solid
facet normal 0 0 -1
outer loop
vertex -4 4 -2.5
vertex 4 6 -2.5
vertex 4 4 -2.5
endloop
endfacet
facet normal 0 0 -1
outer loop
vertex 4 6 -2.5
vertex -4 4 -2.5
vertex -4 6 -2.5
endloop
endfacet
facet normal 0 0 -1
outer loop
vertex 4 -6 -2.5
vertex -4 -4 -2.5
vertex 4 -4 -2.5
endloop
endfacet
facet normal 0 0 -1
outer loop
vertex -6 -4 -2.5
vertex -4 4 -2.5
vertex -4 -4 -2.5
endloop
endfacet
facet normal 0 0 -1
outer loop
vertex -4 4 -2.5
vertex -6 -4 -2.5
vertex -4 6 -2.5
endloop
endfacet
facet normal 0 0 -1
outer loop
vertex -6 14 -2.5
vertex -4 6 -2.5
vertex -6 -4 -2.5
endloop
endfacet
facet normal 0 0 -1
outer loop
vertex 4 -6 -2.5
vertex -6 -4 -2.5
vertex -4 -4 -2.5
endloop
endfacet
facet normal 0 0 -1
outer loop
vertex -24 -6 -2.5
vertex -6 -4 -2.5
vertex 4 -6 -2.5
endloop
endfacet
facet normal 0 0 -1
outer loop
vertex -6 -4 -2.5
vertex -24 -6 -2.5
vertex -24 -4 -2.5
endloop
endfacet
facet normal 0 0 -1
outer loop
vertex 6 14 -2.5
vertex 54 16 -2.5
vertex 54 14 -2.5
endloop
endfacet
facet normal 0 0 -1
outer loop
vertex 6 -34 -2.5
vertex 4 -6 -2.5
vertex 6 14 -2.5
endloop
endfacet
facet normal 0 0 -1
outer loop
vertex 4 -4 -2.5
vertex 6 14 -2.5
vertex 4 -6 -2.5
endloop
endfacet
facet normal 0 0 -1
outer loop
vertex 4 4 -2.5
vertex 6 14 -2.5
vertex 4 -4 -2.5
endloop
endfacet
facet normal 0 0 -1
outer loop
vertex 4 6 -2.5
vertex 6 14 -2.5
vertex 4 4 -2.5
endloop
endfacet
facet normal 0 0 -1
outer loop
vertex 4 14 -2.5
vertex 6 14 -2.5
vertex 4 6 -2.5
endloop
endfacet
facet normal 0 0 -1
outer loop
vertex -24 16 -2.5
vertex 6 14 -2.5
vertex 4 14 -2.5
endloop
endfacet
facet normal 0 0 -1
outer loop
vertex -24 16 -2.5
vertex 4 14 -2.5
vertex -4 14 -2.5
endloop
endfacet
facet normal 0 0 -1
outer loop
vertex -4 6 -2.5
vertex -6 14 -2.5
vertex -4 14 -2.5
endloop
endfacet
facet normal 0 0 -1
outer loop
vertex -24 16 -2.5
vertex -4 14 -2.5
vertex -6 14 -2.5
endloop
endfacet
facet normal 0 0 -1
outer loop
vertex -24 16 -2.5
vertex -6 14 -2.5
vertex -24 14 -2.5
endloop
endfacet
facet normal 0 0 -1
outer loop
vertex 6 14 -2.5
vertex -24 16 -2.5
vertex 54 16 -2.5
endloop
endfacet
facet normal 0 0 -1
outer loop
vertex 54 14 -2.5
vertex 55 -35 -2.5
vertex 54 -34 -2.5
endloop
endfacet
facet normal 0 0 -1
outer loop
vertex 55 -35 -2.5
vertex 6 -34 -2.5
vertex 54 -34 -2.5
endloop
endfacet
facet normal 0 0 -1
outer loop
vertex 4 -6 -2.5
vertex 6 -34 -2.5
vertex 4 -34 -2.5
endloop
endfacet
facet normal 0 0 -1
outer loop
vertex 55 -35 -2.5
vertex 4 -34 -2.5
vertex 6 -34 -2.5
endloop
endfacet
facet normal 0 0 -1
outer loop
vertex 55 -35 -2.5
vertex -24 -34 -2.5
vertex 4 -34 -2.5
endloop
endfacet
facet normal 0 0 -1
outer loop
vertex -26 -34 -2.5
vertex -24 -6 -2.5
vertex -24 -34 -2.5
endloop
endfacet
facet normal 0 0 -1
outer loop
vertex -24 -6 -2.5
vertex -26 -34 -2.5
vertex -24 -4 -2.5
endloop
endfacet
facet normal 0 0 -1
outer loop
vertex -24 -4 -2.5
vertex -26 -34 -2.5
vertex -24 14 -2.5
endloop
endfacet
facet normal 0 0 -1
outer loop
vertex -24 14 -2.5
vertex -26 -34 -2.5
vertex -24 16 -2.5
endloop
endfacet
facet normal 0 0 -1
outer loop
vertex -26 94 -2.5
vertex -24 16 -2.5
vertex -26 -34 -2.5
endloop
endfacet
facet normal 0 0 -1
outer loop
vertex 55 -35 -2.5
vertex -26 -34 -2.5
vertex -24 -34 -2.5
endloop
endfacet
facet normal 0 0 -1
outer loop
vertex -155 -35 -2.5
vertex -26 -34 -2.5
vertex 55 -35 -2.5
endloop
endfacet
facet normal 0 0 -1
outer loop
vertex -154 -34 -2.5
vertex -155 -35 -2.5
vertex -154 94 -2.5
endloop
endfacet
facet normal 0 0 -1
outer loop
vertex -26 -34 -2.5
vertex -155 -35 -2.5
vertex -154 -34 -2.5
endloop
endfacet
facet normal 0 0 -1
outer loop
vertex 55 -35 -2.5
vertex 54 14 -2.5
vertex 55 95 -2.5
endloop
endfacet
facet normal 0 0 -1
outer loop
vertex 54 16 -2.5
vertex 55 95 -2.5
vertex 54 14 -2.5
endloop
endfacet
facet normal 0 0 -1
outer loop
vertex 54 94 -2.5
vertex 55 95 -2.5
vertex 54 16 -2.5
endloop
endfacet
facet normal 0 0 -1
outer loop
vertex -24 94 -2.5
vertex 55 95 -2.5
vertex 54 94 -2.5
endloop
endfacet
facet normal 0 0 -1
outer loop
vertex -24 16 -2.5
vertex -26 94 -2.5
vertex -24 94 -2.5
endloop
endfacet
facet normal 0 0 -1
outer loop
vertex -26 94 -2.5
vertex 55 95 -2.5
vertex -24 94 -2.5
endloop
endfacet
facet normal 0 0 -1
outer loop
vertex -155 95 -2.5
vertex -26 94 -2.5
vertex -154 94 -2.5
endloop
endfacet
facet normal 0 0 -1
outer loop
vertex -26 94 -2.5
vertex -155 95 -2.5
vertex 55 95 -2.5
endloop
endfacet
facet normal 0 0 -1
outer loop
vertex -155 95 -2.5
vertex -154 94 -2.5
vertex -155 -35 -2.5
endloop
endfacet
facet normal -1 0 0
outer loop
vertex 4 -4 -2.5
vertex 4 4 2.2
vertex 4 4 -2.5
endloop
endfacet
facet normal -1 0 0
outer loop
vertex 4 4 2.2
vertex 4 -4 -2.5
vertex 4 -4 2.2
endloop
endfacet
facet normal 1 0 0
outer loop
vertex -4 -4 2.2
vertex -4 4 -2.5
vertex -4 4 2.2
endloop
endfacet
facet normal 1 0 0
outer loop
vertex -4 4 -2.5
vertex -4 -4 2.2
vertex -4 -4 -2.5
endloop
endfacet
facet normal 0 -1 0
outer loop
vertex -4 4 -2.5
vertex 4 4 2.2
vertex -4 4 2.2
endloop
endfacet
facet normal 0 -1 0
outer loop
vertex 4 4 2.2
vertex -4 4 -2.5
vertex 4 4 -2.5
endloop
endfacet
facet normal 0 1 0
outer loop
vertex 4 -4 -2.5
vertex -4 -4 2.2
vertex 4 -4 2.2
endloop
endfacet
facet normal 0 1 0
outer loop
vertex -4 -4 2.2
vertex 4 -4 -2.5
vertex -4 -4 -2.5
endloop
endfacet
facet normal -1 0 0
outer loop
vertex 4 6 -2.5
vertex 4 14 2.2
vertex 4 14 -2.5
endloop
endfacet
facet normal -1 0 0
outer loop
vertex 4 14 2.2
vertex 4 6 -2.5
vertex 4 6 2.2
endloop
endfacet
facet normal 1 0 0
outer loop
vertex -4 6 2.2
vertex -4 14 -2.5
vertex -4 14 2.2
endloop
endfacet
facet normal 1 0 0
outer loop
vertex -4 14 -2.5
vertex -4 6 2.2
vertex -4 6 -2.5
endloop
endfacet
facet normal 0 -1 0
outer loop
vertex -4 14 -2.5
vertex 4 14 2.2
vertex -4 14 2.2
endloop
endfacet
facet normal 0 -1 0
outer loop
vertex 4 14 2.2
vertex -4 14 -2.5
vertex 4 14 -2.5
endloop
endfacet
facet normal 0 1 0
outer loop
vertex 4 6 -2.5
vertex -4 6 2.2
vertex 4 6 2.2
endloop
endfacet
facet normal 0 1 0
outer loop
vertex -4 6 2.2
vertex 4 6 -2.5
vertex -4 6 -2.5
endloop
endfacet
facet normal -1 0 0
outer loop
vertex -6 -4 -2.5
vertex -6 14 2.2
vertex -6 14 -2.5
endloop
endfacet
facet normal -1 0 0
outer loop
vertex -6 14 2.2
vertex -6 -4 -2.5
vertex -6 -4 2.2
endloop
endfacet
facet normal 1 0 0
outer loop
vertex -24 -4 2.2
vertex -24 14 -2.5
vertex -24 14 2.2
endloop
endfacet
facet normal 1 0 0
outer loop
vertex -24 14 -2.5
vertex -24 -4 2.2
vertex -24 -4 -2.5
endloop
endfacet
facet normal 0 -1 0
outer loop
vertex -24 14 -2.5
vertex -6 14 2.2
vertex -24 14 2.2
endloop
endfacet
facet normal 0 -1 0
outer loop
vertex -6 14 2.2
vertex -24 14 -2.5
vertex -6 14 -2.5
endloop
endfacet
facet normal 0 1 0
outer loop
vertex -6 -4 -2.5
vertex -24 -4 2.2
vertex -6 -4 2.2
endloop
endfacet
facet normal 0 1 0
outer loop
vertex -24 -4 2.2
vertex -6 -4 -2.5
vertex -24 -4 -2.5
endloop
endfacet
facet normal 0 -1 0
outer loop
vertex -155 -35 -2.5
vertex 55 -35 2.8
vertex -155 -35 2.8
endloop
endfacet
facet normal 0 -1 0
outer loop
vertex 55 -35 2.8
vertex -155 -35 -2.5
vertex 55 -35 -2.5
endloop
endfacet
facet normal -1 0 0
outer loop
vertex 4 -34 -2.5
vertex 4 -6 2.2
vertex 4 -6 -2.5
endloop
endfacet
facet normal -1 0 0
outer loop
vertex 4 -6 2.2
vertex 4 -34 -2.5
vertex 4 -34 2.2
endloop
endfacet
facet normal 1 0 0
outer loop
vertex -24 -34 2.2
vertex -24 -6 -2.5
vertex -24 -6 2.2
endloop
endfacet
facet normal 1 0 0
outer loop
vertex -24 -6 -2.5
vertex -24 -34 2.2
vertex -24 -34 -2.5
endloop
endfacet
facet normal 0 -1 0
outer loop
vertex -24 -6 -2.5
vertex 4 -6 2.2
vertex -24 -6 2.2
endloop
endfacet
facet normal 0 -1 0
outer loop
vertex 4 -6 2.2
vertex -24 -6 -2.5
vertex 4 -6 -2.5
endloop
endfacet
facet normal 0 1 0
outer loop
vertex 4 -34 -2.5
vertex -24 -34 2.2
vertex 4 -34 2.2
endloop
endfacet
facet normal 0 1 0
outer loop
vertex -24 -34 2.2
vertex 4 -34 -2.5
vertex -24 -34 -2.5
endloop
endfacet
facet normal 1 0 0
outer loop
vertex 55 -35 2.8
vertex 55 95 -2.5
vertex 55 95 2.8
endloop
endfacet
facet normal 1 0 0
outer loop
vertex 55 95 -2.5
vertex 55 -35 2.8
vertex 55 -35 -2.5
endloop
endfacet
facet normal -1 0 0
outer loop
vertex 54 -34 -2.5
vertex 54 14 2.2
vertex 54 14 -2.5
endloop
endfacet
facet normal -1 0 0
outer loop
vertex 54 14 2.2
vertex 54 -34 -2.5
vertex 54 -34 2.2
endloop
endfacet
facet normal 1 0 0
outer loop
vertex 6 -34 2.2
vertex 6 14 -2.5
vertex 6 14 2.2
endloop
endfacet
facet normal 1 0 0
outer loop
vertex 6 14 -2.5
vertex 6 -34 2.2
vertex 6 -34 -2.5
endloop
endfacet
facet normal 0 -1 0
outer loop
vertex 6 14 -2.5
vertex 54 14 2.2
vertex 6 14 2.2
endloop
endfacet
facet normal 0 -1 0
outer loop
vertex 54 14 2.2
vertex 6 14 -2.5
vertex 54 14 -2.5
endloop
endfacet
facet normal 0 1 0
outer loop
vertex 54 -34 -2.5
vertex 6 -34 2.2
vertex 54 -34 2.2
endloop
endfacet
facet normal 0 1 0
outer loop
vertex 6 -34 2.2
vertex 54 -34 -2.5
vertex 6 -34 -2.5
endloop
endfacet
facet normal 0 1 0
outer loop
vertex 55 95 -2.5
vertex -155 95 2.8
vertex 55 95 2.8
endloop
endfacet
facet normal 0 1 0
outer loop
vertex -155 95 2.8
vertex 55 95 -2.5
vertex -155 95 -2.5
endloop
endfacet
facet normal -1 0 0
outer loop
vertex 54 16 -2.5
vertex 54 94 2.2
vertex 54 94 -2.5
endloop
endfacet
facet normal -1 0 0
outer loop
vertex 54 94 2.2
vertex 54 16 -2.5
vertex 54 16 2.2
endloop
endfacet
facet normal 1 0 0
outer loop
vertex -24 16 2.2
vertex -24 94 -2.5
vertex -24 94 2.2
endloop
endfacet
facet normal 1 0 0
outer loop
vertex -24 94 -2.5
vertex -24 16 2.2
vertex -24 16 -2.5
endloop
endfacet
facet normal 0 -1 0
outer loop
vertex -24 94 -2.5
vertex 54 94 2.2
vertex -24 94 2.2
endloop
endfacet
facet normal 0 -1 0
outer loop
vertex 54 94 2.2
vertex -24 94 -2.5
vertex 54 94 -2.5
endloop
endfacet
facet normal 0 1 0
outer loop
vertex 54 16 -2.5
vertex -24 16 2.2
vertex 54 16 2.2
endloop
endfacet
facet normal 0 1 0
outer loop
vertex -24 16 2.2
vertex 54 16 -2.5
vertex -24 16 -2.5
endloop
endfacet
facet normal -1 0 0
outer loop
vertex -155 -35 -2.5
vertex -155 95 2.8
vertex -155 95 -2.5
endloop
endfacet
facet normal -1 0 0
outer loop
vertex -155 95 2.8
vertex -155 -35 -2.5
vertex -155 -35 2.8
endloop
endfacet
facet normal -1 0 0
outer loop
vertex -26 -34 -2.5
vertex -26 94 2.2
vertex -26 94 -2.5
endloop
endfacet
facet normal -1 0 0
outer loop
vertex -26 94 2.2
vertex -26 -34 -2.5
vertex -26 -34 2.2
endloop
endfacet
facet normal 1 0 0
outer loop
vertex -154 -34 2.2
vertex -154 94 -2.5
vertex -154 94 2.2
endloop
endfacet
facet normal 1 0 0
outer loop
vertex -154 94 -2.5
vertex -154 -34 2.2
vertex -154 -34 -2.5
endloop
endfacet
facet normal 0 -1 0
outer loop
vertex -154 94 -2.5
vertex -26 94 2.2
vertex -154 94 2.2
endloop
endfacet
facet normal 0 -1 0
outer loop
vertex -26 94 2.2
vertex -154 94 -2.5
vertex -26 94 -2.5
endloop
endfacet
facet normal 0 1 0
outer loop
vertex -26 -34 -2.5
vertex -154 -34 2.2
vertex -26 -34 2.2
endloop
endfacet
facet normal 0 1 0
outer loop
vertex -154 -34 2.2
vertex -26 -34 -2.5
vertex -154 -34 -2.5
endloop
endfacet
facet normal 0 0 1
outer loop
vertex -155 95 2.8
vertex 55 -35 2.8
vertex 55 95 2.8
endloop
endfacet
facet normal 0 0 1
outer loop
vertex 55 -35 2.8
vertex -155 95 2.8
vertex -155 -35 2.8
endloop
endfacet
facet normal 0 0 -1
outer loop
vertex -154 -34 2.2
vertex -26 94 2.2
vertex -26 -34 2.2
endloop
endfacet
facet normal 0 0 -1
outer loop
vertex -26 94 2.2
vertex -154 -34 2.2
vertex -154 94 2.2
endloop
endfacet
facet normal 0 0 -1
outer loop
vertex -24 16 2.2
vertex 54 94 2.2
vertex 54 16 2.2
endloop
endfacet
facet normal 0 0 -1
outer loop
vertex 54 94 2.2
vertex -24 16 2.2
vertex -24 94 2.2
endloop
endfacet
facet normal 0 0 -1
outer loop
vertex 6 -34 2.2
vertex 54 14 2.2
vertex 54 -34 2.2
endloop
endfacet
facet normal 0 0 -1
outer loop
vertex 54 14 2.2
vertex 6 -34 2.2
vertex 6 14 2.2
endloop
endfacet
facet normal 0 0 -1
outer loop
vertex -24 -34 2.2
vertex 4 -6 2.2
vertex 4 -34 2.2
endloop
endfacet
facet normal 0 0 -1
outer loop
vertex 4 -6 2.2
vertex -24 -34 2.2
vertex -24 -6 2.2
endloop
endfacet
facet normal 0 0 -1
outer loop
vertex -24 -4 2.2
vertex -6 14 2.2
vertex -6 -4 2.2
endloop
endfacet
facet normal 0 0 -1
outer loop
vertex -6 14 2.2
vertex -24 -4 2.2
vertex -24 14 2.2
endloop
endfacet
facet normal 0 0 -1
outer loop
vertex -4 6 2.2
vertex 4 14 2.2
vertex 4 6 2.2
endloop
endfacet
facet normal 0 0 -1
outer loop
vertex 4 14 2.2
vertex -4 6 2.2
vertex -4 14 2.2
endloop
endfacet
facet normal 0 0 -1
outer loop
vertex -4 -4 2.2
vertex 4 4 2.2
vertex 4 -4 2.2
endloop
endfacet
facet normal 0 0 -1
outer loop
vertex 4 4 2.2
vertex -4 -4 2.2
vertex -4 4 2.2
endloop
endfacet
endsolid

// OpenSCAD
borderWidth = 1;
height = 5;

squareWithBorder(10, borderWidth, height);

translate([0, 10, 0])
	squareWithBorder(10, borderWidth, height);

translate([-15, 5, 0])
	squareWithBorder(20, borderWidth, height);

translate([-10, -20, 0])
	squareWithBorder(30, borderWidth, height);

translate([30, -10, 0])
	squareWithBorder(50, borderWidth, height);

translate([15, 55, 0])
	squareWithBorder(80, borderWidth, height);

translate([-90, 30, 0])
	squareWithBorder(130, borderWidth, height);
	
translate([-50, 30, height/2])
	cube([130+80, 130, 0.6], center=true);

module squareWithBorder(sideLength, borderWidth, height){
	difference(){
		cube([sideLength, sideLength, height], center=true);
		cube([sideLength-2*borderWidth, sideLength-2*borderWidth, height], center=true);
	}
}
